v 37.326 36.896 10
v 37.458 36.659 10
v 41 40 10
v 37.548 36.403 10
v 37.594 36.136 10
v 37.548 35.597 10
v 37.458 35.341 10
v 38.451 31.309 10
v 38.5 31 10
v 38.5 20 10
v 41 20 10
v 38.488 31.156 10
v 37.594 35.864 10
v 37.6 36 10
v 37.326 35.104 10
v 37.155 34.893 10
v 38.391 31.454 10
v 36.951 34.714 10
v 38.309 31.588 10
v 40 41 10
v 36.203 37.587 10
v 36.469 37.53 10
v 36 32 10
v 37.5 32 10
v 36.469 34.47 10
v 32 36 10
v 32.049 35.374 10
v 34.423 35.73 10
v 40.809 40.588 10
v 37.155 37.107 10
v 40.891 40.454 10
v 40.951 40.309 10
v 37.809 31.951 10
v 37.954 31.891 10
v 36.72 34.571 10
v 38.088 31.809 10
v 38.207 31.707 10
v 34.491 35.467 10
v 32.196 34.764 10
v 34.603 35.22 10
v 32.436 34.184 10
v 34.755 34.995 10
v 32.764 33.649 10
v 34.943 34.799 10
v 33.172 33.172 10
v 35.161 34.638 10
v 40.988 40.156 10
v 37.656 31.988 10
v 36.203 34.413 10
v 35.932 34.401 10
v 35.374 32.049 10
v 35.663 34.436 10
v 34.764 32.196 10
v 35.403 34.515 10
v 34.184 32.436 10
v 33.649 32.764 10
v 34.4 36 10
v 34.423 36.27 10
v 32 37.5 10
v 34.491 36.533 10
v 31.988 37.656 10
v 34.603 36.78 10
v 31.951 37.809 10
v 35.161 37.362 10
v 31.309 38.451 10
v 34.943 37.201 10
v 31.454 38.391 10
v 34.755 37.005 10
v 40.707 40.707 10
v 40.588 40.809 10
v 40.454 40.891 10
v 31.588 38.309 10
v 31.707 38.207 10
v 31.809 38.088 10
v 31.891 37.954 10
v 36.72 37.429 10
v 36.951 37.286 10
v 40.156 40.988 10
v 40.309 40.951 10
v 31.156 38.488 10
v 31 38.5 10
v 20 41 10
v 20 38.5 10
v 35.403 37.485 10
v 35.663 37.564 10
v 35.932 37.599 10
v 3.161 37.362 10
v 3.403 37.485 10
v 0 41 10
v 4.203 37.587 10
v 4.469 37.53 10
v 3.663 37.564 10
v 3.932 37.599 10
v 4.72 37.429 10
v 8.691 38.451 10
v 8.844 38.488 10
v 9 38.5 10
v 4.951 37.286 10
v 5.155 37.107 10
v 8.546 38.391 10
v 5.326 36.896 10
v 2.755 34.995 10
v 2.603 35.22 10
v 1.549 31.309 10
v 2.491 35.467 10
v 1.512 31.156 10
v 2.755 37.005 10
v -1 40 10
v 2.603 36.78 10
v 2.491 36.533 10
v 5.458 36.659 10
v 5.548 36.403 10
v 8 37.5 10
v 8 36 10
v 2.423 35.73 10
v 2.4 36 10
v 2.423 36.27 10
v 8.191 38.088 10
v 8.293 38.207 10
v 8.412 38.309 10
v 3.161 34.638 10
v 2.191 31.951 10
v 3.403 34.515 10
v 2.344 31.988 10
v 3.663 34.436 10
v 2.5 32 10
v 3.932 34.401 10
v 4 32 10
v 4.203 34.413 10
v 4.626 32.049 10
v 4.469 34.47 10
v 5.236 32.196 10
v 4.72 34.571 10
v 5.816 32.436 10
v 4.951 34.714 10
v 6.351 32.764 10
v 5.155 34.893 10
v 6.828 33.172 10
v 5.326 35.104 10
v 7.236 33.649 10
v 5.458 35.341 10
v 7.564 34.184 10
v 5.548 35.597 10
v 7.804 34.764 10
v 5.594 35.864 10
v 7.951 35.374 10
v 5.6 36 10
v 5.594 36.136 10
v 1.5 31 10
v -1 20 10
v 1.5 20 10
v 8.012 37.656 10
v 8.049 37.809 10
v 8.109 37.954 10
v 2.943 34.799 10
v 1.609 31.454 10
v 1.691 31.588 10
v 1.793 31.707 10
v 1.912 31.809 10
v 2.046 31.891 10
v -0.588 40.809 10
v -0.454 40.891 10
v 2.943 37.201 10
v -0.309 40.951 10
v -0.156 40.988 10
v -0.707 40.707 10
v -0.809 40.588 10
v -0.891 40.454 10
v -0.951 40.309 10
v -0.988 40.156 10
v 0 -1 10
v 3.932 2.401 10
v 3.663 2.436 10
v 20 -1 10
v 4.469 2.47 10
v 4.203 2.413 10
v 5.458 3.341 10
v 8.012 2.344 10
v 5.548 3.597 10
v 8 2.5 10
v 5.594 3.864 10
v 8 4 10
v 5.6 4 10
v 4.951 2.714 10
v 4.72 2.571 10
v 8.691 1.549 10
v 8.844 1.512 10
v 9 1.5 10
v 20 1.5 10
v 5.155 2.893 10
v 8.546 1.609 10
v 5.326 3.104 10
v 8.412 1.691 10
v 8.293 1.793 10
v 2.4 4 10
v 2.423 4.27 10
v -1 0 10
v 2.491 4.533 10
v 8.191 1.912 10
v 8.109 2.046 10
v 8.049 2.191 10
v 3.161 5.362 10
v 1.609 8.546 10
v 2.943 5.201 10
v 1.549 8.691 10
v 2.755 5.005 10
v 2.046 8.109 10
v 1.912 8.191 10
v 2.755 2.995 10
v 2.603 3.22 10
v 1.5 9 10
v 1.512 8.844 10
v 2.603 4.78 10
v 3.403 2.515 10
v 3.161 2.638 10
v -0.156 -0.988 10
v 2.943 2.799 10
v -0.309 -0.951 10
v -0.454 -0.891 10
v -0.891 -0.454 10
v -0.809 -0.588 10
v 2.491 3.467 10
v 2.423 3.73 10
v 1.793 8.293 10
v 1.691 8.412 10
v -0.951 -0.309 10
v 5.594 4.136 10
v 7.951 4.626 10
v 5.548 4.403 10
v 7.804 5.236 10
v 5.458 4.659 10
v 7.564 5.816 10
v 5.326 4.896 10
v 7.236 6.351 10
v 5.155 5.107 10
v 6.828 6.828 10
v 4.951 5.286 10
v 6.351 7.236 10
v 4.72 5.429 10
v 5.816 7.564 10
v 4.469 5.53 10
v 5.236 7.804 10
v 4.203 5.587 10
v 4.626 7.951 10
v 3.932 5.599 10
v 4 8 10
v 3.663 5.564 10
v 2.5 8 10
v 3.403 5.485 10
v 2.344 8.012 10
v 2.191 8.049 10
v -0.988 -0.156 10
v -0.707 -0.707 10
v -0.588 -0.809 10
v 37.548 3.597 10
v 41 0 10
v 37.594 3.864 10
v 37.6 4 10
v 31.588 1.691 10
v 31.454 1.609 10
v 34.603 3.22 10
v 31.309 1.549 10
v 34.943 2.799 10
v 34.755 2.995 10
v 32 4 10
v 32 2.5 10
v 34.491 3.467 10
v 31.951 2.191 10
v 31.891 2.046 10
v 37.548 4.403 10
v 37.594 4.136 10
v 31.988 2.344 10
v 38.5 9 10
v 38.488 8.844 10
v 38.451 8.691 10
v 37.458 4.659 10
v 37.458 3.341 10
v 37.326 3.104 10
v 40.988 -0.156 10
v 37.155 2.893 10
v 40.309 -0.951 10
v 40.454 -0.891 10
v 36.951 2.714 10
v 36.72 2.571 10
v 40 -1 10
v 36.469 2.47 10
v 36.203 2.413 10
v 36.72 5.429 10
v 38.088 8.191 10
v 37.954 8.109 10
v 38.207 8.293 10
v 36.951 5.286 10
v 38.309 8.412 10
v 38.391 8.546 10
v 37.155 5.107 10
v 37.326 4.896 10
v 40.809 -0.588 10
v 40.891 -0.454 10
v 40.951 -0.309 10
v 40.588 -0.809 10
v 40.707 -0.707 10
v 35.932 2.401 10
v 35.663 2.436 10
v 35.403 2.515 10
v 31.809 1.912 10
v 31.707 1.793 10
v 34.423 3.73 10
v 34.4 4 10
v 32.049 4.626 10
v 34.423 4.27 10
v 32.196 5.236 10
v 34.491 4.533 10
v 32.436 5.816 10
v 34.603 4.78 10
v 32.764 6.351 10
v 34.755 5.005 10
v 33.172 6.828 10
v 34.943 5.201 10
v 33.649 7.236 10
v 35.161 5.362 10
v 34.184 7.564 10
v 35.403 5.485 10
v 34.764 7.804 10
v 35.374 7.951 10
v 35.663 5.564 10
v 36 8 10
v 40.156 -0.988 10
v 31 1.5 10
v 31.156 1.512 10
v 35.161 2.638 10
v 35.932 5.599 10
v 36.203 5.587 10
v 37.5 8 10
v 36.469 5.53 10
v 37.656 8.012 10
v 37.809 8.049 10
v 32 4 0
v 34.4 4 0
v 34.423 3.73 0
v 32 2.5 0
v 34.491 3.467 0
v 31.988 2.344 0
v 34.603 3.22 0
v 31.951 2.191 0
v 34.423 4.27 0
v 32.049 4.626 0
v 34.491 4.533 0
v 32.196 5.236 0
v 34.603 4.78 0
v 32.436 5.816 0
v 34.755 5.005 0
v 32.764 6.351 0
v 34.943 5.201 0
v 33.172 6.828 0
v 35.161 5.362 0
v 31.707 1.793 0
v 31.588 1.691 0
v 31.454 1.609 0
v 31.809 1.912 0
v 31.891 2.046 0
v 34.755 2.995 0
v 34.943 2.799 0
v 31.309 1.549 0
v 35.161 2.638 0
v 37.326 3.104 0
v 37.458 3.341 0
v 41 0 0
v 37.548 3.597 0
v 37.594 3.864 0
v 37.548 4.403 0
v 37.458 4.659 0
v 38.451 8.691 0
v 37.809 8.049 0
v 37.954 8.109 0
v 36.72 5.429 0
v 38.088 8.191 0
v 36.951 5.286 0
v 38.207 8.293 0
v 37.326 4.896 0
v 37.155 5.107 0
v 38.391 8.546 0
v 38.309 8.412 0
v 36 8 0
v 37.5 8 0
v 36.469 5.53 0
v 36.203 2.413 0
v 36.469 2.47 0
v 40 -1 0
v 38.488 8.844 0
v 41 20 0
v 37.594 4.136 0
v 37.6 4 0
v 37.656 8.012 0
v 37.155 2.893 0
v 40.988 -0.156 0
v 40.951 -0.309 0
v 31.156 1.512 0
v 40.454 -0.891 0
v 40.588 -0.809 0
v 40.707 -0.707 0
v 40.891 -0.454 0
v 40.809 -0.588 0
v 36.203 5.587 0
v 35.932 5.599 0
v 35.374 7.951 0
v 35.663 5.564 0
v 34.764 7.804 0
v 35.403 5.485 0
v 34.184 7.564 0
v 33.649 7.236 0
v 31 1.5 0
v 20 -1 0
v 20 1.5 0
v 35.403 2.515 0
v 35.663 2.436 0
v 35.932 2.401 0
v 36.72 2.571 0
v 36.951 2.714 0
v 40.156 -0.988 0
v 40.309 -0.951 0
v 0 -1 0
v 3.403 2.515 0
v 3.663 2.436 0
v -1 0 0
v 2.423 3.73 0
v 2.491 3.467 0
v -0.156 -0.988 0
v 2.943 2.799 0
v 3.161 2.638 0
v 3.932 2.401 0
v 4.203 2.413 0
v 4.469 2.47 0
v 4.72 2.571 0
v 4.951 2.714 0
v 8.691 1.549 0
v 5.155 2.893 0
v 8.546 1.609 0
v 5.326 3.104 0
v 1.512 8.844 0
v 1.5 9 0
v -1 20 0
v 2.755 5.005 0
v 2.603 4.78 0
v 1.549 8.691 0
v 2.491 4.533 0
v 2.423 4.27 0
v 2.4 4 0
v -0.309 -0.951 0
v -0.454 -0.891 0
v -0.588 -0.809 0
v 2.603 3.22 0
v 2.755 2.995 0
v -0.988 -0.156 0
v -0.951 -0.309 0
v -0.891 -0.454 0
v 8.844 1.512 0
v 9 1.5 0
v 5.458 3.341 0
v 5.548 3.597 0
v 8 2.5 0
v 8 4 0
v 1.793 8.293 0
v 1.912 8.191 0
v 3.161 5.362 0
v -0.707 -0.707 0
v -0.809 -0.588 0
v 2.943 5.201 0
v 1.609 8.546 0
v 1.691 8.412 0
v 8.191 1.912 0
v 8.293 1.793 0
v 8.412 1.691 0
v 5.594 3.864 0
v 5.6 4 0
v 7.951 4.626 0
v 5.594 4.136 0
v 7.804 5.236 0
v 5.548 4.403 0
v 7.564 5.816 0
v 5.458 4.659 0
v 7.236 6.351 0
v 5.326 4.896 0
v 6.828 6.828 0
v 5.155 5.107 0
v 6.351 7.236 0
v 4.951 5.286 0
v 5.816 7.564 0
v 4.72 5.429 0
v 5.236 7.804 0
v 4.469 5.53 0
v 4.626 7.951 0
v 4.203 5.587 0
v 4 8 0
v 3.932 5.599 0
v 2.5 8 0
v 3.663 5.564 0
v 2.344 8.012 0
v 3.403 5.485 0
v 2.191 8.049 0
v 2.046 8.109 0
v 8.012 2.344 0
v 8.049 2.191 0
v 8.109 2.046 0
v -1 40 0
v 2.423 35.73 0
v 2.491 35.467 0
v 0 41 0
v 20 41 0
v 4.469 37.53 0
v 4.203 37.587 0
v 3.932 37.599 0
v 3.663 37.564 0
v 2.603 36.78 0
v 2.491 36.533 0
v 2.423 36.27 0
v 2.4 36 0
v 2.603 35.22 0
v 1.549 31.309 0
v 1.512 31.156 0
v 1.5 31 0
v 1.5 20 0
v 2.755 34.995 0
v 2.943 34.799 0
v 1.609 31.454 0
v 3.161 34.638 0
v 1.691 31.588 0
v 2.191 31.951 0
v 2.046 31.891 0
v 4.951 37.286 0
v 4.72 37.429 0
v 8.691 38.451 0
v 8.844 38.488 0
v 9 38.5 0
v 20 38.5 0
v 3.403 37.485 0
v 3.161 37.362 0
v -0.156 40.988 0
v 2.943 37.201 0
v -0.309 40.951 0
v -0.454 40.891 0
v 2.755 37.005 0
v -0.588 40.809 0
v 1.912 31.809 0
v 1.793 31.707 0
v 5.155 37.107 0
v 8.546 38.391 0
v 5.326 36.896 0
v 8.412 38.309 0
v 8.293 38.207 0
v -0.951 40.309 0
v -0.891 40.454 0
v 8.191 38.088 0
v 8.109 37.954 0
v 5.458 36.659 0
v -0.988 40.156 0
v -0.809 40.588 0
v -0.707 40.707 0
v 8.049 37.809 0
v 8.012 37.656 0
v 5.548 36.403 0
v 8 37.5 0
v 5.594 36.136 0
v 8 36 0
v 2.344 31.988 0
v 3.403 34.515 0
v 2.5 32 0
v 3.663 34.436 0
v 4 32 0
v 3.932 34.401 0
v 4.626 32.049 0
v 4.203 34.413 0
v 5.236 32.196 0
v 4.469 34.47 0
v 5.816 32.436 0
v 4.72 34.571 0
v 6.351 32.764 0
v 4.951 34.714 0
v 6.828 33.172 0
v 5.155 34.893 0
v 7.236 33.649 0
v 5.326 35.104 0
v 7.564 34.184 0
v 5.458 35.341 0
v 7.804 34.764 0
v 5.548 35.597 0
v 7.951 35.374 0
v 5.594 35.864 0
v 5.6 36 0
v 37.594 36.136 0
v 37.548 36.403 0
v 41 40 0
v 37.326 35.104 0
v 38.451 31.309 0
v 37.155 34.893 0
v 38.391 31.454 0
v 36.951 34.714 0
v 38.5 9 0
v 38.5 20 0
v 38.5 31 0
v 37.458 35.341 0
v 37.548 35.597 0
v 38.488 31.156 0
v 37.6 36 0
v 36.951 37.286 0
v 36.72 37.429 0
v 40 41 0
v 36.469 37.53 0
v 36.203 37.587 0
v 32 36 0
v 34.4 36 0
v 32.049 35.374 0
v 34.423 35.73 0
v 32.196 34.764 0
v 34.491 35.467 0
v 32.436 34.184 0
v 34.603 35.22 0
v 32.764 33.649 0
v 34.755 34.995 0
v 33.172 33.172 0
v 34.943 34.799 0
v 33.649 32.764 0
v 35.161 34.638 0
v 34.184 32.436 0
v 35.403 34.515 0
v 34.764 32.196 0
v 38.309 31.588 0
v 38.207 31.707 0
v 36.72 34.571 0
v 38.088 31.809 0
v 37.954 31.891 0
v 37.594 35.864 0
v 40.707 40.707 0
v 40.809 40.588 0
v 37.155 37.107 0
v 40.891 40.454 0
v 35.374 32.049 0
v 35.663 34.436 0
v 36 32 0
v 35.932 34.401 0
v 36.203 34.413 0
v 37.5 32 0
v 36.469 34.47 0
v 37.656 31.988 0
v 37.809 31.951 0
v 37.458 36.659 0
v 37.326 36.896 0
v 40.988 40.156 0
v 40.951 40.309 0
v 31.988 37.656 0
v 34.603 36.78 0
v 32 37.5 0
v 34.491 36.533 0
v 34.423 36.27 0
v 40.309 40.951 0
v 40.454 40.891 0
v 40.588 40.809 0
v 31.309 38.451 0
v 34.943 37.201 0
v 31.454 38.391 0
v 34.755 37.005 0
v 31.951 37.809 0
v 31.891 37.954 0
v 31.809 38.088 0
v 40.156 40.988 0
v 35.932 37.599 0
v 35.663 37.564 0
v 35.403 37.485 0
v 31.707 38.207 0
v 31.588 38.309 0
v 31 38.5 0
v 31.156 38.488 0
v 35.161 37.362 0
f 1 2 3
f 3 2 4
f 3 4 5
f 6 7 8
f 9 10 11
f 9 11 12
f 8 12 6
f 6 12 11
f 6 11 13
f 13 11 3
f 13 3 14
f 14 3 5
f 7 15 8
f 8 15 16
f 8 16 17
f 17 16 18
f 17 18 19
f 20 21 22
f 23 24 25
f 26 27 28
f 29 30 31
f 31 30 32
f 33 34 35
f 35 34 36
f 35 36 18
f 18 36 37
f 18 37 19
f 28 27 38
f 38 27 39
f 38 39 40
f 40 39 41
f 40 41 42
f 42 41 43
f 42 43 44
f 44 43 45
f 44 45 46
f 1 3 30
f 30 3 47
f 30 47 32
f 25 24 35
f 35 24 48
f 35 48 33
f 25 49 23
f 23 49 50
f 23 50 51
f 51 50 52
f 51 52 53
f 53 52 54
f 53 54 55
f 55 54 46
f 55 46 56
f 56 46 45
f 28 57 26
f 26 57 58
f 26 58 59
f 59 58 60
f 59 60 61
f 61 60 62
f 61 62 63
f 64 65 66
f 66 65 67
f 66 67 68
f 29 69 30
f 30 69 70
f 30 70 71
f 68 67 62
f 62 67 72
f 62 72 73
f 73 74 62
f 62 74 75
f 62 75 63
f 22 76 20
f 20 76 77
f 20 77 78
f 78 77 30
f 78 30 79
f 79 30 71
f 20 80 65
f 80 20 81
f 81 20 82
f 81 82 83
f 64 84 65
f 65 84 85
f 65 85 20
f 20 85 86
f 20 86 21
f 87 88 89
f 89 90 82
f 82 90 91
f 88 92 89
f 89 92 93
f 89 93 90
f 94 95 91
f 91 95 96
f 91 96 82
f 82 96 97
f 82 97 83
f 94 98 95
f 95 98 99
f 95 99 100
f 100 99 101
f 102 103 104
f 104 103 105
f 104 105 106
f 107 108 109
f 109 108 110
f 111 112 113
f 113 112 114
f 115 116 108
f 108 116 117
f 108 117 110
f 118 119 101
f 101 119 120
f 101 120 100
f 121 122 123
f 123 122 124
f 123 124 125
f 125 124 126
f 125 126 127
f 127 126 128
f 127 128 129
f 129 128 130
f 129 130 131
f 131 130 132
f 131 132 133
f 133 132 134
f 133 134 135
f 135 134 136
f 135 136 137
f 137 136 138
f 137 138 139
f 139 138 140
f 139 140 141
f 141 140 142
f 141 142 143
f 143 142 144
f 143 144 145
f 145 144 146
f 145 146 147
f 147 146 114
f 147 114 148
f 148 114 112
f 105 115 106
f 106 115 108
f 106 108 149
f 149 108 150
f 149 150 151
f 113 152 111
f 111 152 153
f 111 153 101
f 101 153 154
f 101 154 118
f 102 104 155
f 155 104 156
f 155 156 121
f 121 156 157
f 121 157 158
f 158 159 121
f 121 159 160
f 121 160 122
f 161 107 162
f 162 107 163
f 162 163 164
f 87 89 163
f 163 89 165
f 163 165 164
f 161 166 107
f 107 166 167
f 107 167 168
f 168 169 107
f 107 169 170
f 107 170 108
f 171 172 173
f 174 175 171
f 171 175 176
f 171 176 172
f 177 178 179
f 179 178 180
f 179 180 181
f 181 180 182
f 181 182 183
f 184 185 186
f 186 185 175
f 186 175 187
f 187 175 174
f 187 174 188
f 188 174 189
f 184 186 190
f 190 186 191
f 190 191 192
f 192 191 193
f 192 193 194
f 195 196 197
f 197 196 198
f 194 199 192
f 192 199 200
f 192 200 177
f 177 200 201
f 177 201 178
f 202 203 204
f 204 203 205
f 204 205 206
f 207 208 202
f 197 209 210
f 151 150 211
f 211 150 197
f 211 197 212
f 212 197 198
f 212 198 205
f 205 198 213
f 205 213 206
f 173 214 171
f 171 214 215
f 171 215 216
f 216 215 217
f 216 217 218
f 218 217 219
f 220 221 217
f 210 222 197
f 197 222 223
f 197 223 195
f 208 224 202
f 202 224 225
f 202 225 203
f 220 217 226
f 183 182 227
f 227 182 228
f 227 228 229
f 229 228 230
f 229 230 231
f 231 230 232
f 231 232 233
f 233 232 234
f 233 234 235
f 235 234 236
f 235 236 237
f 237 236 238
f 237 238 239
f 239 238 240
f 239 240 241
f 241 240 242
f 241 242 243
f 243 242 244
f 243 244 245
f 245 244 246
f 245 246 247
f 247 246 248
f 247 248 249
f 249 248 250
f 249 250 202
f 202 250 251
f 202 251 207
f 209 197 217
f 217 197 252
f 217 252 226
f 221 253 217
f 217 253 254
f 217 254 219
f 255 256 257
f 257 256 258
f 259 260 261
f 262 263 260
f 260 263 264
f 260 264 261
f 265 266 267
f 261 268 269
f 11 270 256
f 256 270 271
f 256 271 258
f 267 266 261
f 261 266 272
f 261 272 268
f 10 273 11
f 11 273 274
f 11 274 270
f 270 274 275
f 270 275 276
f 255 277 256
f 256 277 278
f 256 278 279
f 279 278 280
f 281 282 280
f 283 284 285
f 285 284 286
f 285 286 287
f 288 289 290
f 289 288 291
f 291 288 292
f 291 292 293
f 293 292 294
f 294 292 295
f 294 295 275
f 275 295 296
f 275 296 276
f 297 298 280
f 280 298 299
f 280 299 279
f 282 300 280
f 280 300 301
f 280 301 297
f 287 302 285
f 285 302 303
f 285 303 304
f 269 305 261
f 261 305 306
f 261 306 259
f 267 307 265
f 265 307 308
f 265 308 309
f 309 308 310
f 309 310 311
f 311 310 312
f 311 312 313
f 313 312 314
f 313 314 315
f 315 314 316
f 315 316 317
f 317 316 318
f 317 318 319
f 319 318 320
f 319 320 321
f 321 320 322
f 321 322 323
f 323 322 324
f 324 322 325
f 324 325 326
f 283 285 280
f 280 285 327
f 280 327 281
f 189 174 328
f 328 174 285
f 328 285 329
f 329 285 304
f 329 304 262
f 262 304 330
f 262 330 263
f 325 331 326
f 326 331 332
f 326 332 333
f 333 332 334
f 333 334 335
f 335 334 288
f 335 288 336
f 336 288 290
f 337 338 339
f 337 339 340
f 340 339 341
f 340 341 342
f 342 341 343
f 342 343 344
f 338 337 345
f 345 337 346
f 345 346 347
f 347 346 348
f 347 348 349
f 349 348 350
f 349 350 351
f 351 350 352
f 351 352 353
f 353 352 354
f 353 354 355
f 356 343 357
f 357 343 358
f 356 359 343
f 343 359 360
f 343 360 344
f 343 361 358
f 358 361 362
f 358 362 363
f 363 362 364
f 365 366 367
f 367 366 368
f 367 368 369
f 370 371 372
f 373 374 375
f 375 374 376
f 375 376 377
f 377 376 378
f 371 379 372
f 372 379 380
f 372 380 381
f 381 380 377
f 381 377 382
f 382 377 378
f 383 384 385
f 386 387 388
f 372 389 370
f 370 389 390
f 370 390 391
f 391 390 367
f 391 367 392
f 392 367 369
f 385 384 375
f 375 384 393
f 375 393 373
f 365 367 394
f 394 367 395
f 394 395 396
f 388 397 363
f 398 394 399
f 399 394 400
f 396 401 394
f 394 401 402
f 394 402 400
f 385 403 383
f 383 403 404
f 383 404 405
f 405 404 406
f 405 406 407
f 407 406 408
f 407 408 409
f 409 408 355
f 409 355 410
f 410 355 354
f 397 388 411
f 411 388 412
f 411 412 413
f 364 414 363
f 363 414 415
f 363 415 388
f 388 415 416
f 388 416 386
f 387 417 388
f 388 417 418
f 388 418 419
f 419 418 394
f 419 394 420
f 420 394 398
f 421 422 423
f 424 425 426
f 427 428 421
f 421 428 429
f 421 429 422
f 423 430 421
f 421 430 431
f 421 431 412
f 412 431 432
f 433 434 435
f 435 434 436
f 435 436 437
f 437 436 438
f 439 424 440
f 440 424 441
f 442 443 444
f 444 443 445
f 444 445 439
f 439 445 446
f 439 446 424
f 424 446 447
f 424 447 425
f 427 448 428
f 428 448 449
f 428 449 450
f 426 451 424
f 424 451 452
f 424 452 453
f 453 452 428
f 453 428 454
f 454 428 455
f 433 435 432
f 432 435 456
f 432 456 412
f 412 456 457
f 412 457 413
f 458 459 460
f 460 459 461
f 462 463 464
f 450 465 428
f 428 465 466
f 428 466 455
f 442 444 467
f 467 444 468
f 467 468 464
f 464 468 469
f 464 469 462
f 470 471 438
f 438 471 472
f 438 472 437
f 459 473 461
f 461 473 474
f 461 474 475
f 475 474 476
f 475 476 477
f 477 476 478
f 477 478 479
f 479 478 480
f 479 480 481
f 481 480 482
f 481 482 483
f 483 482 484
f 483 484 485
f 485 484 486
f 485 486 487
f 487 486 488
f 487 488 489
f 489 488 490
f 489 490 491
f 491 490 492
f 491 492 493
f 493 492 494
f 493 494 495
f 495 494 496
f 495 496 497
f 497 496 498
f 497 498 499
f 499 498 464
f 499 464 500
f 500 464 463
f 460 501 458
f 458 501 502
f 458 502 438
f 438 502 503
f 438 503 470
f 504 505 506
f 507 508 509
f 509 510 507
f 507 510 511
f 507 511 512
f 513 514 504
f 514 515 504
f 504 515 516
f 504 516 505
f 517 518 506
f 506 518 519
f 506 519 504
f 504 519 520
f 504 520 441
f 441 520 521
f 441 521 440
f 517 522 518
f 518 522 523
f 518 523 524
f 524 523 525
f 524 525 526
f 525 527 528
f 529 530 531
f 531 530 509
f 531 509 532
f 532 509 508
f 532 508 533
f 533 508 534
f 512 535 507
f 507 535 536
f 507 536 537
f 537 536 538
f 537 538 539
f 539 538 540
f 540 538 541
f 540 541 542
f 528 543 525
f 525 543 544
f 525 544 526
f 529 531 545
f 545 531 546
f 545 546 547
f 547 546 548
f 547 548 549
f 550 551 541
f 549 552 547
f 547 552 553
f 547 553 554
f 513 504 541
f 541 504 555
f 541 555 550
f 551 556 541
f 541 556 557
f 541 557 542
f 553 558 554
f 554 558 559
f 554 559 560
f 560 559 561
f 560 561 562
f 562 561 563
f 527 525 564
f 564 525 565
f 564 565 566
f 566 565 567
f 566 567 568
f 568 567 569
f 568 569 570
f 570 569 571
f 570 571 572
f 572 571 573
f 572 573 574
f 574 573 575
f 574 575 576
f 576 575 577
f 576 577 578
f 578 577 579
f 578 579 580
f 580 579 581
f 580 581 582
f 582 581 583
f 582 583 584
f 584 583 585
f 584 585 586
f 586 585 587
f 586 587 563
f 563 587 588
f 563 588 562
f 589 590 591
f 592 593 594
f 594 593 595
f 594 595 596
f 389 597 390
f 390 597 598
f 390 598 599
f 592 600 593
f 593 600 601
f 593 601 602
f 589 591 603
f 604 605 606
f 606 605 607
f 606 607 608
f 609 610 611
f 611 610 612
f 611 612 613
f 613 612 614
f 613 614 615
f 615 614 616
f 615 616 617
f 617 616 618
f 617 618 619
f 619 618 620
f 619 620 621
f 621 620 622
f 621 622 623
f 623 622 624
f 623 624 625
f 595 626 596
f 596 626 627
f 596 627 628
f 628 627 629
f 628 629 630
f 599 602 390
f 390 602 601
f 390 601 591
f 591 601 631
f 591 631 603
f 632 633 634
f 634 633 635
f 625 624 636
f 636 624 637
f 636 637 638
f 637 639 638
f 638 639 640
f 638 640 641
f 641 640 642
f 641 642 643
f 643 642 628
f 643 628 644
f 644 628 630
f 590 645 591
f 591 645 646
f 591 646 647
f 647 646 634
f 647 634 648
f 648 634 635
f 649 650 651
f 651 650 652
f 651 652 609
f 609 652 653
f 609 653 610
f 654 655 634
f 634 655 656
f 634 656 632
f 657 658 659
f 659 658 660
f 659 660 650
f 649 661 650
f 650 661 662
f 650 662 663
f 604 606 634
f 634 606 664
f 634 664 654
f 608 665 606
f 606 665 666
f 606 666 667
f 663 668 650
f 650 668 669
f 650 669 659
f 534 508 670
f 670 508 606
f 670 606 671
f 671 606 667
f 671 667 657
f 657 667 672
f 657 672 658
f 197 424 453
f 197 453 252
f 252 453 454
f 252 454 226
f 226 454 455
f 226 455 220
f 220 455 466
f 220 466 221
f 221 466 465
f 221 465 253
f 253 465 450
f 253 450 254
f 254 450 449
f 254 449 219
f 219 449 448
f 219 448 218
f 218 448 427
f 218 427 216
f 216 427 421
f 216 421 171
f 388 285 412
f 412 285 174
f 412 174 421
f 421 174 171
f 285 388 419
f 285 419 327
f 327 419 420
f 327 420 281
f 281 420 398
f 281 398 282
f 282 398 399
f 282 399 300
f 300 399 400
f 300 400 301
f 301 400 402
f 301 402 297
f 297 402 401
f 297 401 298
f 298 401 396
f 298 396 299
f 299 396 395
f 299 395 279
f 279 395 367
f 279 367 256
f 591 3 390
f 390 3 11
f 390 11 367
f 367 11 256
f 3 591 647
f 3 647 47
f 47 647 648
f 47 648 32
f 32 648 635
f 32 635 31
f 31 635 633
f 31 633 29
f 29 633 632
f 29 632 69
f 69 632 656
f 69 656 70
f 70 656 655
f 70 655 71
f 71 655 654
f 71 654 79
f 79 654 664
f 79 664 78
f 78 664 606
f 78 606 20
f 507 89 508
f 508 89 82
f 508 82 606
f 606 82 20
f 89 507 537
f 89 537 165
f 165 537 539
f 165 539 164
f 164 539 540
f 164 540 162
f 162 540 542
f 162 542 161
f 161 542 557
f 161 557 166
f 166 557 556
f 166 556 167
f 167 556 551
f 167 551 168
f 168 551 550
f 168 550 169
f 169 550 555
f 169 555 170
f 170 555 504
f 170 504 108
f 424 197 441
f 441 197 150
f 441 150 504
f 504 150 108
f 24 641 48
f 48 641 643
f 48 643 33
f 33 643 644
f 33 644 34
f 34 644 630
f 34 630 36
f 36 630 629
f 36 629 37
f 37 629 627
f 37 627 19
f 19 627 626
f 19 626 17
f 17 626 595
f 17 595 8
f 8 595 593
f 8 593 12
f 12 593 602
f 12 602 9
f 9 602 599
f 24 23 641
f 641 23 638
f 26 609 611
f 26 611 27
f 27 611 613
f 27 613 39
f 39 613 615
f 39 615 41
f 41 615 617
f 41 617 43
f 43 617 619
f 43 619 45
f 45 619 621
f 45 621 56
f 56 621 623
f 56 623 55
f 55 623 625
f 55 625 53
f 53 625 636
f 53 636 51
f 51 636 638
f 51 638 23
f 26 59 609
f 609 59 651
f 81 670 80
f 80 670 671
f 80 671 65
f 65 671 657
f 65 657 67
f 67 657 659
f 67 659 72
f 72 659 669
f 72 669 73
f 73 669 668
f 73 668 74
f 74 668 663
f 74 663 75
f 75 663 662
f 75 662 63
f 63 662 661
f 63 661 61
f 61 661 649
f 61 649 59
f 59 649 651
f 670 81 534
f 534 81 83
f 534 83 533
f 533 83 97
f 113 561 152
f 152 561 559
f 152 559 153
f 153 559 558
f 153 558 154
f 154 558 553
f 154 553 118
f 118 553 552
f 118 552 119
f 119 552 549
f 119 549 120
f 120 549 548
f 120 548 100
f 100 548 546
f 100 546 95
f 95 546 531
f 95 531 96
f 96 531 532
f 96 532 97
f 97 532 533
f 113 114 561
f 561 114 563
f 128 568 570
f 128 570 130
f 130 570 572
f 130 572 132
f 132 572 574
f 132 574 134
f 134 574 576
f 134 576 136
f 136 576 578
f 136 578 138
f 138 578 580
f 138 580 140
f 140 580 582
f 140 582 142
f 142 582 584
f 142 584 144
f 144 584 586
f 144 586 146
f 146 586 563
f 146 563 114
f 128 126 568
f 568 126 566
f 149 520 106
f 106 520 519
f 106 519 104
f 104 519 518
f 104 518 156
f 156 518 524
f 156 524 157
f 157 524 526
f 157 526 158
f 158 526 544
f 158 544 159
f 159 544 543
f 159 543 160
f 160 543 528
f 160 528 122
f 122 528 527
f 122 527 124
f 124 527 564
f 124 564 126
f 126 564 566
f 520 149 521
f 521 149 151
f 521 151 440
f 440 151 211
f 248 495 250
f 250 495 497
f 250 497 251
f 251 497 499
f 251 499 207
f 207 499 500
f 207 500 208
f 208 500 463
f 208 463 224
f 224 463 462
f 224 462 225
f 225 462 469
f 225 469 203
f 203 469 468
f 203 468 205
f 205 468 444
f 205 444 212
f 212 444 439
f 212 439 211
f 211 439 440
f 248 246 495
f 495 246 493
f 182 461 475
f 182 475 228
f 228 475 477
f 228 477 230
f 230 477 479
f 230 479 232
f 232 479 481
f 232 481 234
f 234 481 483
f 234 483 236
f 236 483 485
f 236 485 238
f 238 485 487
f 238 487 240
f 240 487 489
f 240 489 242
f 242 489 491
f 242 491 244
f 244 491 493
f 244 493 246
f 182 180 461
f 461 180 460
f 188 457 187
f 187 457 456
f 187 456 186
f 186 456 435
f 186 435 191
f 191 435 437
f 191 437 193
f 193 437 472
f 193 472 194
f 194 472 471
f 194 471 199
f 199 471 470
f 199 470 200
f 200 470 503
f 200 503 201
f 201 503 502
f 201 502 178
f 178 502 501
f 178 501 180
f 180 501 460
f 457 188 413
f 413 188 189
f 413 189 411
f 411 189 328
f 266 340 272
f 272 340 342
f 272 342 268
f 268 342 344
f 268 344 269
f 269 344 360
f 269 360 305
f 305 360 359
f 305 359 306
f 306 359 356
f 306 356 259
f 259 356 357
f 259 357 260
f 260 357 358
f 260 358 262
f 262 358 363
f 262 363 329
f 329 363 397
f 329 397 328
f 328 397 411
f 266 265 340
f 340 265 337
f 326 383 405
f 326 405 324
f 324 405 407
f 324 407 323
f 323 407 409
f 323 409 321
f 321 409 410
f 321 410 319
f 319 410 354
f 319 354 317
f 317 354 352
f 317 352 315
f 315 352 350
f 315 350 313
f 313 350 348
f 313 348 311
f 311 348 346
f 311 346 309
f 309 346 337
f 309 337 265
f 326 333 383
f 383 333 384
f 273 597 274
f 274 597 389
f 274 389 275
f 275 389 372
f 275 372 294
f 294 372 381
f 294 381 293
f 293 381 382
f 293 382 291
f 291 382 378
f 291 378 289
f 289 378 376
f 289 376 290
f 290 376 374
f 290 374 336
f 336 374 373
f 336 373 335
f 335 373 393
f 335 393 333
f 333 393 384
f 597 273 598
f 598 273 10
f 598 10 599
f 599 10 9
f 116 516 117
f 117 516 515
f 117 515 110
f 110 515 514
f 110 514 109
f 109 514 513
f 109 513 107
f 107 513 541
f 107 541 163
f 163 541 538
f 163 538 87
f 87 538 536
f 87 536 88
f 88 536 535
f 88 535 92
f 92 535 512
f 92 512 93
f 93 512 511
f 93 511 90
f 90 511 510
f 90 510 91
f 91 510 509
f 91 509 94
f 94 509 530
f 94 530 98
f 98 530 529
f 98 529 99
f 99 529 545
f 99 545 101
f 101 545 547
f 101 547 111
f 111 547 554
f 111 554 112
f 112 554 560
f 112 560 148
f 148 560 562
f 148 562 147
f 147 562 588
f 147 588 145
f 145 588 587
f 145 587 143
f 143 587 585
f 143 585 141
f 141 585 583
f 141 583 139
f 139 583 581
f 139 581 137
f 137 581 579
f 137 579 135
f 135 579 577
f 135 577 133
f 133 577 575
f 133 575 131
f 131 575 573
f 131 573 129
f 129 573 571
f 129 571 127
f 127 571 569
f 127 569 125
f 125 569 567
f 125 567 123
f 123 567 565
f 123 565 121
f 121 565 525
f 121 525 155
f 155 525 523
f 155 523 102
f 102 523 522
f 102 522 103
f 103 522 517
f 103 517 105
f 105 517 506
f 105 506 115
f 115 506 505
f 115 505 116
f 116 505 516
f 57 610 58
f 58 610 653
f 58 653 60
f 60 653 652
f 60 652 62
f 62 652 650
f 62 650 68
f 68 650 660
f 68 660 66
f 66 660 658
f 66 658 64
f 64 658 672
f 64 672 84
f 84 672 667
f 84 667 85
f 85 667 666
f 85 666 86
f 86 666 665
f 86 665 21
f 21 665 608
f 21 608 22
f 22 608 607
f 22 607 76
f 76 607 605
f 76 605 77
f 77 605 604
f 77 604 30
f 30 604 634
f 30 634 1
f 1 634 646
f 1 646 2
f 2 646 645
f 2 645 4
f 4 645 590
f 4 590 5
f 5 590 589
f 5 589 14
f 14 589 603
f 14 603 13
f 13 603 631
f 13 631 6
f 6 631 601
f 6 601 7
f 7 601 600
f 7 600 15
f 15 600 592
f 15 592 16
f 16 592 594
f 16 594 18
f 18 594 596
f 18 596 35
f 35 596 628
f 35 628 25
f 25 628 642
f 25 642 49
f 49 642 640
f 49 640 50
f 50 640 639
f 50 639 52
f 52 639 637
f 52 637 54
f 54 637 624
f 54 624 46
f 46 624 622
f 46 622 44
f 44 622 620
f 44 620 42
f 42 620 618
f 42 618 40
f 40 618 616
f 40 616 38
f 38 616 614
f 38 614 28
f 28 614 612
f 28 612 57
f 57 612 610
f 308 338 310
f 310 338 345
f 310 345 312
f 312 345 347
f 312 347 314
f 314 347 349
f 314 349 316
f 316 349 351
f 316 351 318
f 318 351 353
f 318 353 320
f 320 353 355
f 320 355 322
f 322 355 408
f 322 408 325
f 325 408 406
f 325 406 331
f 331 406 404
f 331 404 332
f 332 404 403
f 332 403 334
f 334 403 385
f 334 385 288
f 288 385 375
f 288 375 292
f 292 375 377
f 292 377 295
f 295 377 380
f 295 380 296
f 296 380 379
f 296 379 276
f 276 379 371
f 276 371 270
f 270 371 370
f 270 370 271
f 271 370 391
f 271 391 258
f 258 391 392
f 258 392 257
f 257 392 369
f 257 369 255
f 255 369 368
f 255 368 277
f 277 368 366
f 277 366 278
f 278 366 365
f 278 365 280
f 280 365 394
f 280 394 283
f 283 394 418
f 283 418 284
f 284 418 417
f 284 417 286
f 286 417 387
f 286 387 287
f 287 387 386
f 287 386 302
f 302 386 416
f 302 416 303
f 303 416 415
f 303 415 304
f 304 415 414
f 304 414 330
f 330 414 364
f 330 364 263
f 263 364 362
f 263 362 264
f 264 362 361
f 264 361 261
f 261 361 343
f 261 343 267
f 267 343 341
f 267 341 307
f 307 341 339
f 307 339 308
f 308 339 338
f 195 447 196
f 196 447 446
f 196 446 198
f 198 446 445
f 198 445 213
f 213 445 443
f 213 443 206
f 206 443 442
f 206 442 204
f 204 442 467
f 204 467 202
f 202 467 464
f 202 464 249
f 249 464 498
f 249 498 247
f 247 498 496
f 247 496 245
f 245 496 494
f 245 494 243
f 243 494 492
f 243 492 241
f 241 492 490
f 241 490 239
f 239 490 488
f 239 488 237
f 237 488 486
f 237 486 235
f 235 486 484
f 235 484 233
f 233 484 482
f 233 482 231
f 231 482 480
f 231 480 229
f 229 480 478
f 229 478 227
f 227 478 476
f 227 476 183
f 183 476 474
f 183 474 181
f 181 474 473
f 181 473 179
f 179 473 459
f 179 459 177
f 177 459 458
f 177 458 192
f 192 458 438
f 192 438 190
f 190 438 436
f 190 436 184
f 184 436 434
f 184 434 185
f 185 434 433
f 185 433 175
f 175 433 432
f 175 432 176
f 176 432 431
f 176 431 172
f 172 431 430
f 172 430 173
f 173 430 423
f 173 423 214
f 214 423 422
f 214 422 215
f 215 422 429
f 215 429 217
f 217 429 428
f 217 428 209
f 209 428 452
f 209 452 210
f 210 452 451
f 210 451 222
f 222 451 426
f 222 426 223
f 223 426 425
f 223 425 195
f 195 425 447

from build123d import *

# Parameters (mm, degrees)
SKETCH1_R           = 1.6
BOSS_EXTRUDE1_DEPTH = 10


with BuildPart() as part:
    # Sketch1 → Boss-Extrude1 (new body)
    with BuildSketch(Plane.XY):
        with BuildLine():
            Line((0, -1), (40, -1))
            ThreePointArc((40, -1), (40.707106781, -0.707106781), (41, 0))
            Line((41, 0), (41, 40))
            ThreePointArc((41, 40), (40.707106781, 40.707106781), (40, 41))
            Line((40, 41), (0, 41))
            ThreePointArc((0, 41), (-0.707106781, 40.707106781), (-1, 40))
            Line((-1, 40), (-1, 0))
            ThreePointArc((-1, 0), (-0.707106781, -0.707106781), (0, -1))
        make_face()
        with Locations((4, 36)):
            Circle(SKETCH1_R, mode=Mode.SUBTRACT)
        with Locations((36, 36)):
            Circle(SKETCH1_R, mode=Mode.SUBTRACT)
        with Locations((36, 4)):
            Circle(SKETCH1_R, mode=Mode.SUBTRACT)
        with Locations((4, 4)):
            Circle(SKETCH1_R, mode=Mode.SUBTRACT)
        with BuildLine():
            Line((36, 8), (37.5, 8))
            ThreePointArc((37.5, 8), (38.207106781, 8.292893219), (38.5, 9))
            Line((38.5, 9), (38.5, 31))
            ThreePointArc((38.5, 31), (38.207106781, 31.707106781), (37.5, 32))
            Line((37.5, 32), (36, 32))
            ThreePointArc((36, 32), (33.171572875, 33.171572875), (32, 36))
            Line((32, 36), (32, 37.5))
            ThreePointArc((32, 37.5), (31.707106781, 38.207106781), (31, 38.5))
            Line((31, 38.5), (9, 38.5))
            ThreePointArc((9, 38.5), (8.292893219, 38.207106781), (8, 37.5))
            Line((8, 37.5), (8, 36))
            ThreePointArc((8, 36), (6.828427125, 33.171572875), (4, 32))
            Line((4, 32), (2.5, 32))
            ThreePointArc((2.5, 32), (1.792893219, 31.707106781), (1.5, 31))
            Line((1.5, 31), (1.5, 9))
            ThreePointArc((1.5, 9), (1.792893219, 8.292893219), (2.5, 8))
            Line((2.5, 8), (4, 8))
            ThreePointArc((4, 8), (6.828427125, 6.828427125), (8, 4))
            Line((8, 4), (8, 2.5))
            ThreePointArc((8, 2.5), (8.292893219, 1.792893219), (9, 1.5))
            Line((9, 1.5), (31, 1.5))
            ThreePointArc((31, 1.5), (31.707106781, 1.792893219), (32, 2.5))
            Line((32, 2.5), (32, 4))
            ThreePointArc((32, 4), (33.171572875, 6.828427125), (36, 8))
        make_face(mode=Mode.SUBTRACT)
    extrude(amount=BOSS_EXTRUDE1_DEPTH)


solid = part.part
